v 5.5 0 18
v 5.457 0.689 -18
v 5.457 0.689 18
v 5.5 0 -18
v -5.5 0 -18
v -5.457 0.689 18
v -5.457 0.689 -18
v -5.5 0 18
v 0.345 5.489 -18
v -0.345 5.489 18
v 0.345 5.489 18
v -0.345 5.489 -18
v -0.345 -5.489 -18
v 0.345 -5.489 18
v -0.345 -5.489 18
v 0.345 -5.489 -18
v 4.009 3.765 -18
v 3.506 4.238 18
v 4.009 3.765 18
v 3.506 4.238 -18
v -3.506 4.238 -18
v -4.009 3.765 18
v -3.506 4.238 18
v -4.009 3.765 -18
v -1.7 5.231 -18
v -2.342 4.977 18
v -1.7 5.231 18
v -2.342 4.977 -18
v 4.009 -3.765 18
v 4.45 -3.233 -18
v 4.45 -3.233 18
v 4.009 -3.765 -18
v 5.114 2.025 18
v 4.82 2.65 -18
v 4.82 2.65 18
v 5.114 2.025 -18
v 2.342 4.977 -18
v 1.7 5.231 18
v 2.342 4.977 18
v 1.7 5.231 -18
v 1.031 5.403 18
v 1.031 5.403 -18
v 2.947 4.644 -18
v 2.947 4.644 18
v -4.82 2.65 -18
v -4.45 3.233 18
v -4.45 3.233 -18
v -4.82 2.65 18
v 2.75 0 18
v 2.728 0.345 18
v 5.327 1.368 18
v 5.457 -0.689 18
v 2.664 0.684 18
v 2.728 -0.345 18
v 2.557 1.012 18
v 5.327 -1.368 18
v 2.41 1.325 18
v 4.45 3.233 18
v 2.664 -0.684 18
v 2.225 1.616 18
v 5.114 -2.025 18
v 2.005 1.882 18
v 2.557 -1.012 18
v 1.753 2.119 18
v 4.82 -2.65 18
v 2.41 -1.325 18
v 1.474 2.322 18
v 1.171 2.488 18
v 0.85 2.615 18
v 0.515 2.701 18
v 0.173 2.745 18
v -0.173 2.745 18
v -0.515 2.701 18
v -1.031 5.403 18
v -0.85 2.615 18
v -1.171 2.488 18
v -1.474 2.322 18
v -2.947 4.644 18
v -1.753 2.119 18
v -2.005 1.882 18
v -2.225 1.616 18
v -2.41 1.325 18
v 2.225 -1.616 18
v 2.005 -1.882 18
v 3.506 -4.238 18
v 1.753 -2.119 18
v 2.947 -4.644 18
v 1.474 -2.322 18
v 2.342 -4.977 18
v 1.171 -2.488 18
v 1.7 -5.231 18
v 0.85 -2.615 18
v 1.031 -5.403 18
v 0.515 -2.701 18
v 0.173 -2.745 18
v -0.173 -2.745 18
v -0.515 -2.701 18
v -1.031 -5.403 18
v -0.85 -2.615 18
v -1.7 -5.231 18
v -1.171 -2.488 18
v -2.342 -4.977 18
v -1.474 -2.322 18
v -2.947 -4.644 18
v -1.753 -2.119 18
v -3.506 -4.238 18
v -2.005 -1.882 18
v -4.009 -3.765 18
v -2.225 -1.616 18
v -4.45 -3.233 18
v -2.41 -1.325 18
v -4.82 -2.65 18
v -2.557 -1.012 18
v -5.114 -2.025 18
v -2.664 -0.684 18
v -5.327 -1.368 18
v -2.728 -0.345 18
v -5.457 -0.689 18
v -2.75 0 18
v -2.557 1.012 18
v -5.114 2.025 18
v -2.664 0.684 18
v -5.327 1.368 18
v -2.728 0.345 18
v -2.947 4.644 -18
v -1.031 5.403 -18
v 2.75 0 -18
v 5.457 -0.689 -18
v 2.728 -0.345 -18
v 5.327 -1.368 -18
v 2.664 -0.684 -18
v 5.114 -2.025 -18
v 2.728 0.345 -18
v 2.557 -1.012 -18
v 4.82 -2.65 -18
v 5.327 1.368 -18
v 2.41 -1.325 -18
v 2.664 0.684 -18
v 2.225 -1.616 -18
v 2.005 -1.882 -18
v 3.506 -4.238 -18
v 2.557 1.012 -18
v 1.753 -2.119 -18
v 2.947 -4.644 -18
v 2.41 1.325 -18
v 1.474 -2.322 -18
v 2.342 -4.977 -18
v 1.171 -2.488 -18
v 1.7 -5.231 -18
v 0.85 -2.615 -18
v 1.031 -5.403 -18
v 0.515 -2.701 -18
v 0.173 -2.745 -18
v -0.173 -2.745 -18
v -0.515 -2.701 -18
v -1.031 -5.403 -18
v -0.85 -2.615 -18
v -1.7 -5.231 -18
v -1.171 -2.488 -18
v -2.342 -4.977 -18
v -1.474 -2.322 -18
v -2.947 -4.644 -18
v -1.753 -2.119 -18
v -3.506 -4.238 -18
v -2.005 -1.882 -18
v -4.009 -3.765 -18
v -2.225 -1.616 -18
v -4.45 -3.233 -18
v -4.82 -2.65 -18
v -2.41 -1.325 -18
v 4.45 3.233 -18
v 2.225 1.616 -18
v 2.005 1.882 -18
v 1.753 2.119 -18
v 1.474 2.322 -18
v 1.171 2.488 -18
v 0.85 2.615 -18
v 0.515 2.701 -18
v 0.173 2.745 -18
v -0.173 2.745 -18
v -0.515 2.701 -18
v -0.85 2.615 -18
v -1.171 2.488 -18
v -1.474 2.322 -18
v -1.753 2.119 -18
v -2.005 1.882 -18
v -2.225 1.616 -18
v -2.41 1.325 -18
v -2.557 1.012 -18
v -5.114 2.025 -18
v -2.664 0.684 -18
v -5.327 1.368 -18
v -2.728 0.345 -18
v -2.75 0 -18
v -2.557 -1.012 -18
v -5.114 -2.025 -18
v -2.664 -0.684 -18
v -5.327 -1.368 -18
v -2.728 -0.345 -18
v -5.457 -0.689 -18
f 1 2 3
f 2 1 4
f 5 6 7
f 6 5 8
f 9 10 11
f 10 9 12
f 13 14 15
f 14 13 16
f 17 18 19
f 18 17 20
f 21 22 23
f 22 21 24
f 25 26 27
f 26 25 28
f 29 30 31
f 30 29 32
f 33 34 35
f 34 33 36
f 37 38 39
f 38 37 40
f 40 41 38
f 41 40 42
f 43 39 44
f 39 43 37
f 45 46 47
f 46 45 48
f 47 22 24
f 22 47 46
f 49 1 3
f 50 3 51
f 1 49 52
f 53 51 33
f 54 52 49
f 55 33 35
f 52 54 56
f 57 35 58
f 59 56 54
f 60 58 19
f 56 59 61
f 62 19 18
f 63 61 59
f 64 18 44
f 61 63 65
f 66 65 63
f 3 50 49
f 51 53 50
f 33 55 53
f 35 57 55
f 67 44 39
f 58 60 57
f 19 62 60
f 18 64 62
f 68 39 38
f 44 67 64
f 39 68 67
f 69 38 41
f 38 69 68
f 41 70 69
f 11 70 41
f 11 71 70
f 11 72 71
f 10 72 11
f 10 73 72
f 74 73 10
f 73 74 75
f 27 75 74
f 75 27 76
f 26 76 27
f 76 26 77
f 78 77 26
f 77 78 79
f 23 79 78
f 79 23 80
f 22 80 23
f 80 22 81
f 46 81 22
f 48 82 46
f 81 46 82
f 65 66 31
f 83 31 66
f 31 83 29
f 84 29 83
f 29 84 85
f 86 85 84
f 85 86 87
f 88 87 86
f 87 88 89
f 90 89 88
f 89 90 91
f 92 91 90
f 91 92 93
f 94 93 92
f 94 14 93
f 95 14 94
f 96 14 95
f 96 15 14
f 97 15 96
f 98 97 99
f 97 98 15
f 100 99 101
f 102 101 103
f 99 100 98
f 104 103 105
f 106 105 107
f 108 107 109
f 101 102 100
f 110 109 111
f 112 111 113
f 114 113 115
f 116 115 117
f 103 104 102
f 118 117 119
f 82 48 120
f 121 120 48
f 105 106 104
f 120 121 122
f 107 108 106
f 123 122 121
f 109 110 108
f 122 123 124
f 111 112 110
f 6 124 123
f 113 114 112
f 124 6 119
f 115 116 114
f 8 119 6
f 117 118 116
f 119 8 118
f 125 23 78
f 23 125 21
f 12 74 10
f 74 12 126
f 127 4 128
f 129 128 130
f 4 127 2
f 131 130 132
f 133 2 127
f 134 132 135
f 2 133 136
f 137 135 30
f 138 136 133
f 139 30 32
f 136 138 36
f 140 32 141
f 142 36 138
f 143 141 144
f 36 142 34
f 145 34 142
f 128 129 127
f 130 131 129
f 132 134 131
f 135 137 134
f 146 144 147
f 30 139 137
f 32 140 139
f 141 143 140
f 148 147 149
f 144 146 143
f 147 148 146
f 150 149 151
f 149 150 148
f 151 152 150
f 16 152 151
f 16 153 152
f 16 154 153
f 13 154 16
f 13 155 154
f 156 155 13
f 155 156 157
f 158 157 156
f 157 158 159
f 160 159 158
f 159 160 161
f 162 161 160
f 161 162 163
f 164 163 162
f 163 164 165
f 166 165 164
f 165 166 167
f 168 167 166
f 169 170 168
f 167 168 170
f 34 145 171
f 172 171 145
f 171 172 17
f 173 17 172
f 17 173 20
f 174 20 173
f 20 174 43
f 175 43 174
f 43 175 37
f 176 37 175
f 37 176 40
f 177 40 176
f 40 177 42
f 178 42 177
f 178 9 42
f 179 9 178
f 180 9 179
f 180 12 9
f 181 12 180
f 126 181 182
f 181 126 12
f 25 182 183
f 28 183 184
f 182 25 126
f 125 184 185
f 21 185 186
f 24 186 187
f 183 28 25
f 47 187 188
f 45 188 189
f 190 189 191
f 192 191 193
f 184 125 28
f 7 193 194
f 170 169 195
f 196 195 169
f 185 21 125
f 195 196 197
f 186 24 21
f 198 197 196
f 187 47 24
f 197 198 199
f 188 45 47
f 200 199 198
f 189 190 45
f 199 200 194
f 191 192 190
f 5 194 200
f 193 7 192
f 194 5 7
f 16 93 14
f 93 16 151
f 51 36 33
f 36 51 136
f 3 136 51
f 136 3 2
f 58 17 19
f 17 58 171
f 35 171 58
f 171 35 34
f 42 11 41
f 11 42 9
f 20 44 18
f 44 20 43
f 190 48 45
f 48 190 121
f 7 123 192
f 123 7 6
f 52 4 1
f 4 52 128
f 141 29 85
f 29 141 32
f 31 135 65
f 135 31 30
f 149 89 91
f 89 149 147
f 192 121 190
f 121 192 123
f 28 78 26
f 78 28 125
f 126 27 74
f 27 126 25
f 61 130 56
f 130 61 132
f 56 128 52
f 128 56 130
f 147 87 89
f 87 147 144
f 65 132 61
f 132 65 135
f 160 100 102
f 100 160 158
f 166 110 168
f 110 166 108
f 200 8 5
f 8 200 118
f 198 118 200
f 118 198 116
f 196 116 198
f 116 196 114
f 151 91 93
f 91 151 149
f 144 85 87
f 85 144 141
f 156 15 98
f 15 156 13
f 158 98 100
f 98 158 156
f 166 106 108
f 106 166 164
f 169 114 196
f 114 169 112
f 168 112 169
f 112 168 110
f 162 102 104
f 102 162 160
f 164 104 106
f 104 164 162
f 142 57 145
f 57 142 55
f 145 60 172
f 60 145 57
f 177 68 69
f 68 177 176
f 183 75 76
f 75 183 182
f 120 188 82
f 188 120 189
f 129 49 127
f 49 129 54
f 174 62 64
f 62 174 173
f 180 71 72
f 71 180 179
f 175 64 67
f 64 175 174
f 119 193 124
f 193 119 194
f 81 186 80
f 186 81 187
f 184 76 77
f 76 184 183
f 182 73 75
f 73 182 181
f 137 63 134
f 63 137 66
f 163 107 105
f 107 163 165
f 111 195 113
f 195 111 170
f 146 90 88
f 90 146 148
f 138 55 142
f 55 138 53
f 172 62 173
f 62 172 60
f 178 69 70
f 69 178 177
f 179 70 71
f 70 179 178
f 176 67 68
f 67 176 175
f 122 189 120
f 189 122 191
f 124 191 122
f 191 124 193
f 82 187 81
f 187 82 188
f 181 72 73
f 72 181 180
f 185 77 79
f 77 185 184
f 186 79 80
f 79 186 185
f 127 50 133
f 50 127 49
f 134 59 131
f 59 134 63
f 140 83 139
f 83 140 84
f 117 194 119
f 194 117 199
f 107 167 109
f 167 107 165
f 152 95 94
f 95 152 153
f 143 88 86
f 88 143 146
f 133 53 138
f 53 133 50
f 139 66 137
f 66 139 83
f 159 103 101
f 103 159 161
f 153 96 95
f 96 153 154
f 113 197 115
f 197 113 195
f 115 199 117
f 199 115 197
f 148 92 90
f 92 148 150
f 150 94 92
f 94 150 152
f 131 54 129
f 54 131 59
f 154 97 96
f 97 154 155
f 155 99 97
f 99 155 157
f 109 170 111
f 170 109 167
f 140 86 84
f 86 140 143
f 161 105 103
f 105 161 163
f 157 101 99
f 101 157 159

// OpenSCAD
$fn = 50;


difference() {
	union() {
		translate(v = [0, 0, -18.0000000000]) {
			cylinder(h = 36, r = 5.5000000000);
		}
	}
	union() {
		translate(v = [0, 0, -100.0000000000]) {
			cylinder(h = 200, r = 2.7500000000);
		}
	}
}
